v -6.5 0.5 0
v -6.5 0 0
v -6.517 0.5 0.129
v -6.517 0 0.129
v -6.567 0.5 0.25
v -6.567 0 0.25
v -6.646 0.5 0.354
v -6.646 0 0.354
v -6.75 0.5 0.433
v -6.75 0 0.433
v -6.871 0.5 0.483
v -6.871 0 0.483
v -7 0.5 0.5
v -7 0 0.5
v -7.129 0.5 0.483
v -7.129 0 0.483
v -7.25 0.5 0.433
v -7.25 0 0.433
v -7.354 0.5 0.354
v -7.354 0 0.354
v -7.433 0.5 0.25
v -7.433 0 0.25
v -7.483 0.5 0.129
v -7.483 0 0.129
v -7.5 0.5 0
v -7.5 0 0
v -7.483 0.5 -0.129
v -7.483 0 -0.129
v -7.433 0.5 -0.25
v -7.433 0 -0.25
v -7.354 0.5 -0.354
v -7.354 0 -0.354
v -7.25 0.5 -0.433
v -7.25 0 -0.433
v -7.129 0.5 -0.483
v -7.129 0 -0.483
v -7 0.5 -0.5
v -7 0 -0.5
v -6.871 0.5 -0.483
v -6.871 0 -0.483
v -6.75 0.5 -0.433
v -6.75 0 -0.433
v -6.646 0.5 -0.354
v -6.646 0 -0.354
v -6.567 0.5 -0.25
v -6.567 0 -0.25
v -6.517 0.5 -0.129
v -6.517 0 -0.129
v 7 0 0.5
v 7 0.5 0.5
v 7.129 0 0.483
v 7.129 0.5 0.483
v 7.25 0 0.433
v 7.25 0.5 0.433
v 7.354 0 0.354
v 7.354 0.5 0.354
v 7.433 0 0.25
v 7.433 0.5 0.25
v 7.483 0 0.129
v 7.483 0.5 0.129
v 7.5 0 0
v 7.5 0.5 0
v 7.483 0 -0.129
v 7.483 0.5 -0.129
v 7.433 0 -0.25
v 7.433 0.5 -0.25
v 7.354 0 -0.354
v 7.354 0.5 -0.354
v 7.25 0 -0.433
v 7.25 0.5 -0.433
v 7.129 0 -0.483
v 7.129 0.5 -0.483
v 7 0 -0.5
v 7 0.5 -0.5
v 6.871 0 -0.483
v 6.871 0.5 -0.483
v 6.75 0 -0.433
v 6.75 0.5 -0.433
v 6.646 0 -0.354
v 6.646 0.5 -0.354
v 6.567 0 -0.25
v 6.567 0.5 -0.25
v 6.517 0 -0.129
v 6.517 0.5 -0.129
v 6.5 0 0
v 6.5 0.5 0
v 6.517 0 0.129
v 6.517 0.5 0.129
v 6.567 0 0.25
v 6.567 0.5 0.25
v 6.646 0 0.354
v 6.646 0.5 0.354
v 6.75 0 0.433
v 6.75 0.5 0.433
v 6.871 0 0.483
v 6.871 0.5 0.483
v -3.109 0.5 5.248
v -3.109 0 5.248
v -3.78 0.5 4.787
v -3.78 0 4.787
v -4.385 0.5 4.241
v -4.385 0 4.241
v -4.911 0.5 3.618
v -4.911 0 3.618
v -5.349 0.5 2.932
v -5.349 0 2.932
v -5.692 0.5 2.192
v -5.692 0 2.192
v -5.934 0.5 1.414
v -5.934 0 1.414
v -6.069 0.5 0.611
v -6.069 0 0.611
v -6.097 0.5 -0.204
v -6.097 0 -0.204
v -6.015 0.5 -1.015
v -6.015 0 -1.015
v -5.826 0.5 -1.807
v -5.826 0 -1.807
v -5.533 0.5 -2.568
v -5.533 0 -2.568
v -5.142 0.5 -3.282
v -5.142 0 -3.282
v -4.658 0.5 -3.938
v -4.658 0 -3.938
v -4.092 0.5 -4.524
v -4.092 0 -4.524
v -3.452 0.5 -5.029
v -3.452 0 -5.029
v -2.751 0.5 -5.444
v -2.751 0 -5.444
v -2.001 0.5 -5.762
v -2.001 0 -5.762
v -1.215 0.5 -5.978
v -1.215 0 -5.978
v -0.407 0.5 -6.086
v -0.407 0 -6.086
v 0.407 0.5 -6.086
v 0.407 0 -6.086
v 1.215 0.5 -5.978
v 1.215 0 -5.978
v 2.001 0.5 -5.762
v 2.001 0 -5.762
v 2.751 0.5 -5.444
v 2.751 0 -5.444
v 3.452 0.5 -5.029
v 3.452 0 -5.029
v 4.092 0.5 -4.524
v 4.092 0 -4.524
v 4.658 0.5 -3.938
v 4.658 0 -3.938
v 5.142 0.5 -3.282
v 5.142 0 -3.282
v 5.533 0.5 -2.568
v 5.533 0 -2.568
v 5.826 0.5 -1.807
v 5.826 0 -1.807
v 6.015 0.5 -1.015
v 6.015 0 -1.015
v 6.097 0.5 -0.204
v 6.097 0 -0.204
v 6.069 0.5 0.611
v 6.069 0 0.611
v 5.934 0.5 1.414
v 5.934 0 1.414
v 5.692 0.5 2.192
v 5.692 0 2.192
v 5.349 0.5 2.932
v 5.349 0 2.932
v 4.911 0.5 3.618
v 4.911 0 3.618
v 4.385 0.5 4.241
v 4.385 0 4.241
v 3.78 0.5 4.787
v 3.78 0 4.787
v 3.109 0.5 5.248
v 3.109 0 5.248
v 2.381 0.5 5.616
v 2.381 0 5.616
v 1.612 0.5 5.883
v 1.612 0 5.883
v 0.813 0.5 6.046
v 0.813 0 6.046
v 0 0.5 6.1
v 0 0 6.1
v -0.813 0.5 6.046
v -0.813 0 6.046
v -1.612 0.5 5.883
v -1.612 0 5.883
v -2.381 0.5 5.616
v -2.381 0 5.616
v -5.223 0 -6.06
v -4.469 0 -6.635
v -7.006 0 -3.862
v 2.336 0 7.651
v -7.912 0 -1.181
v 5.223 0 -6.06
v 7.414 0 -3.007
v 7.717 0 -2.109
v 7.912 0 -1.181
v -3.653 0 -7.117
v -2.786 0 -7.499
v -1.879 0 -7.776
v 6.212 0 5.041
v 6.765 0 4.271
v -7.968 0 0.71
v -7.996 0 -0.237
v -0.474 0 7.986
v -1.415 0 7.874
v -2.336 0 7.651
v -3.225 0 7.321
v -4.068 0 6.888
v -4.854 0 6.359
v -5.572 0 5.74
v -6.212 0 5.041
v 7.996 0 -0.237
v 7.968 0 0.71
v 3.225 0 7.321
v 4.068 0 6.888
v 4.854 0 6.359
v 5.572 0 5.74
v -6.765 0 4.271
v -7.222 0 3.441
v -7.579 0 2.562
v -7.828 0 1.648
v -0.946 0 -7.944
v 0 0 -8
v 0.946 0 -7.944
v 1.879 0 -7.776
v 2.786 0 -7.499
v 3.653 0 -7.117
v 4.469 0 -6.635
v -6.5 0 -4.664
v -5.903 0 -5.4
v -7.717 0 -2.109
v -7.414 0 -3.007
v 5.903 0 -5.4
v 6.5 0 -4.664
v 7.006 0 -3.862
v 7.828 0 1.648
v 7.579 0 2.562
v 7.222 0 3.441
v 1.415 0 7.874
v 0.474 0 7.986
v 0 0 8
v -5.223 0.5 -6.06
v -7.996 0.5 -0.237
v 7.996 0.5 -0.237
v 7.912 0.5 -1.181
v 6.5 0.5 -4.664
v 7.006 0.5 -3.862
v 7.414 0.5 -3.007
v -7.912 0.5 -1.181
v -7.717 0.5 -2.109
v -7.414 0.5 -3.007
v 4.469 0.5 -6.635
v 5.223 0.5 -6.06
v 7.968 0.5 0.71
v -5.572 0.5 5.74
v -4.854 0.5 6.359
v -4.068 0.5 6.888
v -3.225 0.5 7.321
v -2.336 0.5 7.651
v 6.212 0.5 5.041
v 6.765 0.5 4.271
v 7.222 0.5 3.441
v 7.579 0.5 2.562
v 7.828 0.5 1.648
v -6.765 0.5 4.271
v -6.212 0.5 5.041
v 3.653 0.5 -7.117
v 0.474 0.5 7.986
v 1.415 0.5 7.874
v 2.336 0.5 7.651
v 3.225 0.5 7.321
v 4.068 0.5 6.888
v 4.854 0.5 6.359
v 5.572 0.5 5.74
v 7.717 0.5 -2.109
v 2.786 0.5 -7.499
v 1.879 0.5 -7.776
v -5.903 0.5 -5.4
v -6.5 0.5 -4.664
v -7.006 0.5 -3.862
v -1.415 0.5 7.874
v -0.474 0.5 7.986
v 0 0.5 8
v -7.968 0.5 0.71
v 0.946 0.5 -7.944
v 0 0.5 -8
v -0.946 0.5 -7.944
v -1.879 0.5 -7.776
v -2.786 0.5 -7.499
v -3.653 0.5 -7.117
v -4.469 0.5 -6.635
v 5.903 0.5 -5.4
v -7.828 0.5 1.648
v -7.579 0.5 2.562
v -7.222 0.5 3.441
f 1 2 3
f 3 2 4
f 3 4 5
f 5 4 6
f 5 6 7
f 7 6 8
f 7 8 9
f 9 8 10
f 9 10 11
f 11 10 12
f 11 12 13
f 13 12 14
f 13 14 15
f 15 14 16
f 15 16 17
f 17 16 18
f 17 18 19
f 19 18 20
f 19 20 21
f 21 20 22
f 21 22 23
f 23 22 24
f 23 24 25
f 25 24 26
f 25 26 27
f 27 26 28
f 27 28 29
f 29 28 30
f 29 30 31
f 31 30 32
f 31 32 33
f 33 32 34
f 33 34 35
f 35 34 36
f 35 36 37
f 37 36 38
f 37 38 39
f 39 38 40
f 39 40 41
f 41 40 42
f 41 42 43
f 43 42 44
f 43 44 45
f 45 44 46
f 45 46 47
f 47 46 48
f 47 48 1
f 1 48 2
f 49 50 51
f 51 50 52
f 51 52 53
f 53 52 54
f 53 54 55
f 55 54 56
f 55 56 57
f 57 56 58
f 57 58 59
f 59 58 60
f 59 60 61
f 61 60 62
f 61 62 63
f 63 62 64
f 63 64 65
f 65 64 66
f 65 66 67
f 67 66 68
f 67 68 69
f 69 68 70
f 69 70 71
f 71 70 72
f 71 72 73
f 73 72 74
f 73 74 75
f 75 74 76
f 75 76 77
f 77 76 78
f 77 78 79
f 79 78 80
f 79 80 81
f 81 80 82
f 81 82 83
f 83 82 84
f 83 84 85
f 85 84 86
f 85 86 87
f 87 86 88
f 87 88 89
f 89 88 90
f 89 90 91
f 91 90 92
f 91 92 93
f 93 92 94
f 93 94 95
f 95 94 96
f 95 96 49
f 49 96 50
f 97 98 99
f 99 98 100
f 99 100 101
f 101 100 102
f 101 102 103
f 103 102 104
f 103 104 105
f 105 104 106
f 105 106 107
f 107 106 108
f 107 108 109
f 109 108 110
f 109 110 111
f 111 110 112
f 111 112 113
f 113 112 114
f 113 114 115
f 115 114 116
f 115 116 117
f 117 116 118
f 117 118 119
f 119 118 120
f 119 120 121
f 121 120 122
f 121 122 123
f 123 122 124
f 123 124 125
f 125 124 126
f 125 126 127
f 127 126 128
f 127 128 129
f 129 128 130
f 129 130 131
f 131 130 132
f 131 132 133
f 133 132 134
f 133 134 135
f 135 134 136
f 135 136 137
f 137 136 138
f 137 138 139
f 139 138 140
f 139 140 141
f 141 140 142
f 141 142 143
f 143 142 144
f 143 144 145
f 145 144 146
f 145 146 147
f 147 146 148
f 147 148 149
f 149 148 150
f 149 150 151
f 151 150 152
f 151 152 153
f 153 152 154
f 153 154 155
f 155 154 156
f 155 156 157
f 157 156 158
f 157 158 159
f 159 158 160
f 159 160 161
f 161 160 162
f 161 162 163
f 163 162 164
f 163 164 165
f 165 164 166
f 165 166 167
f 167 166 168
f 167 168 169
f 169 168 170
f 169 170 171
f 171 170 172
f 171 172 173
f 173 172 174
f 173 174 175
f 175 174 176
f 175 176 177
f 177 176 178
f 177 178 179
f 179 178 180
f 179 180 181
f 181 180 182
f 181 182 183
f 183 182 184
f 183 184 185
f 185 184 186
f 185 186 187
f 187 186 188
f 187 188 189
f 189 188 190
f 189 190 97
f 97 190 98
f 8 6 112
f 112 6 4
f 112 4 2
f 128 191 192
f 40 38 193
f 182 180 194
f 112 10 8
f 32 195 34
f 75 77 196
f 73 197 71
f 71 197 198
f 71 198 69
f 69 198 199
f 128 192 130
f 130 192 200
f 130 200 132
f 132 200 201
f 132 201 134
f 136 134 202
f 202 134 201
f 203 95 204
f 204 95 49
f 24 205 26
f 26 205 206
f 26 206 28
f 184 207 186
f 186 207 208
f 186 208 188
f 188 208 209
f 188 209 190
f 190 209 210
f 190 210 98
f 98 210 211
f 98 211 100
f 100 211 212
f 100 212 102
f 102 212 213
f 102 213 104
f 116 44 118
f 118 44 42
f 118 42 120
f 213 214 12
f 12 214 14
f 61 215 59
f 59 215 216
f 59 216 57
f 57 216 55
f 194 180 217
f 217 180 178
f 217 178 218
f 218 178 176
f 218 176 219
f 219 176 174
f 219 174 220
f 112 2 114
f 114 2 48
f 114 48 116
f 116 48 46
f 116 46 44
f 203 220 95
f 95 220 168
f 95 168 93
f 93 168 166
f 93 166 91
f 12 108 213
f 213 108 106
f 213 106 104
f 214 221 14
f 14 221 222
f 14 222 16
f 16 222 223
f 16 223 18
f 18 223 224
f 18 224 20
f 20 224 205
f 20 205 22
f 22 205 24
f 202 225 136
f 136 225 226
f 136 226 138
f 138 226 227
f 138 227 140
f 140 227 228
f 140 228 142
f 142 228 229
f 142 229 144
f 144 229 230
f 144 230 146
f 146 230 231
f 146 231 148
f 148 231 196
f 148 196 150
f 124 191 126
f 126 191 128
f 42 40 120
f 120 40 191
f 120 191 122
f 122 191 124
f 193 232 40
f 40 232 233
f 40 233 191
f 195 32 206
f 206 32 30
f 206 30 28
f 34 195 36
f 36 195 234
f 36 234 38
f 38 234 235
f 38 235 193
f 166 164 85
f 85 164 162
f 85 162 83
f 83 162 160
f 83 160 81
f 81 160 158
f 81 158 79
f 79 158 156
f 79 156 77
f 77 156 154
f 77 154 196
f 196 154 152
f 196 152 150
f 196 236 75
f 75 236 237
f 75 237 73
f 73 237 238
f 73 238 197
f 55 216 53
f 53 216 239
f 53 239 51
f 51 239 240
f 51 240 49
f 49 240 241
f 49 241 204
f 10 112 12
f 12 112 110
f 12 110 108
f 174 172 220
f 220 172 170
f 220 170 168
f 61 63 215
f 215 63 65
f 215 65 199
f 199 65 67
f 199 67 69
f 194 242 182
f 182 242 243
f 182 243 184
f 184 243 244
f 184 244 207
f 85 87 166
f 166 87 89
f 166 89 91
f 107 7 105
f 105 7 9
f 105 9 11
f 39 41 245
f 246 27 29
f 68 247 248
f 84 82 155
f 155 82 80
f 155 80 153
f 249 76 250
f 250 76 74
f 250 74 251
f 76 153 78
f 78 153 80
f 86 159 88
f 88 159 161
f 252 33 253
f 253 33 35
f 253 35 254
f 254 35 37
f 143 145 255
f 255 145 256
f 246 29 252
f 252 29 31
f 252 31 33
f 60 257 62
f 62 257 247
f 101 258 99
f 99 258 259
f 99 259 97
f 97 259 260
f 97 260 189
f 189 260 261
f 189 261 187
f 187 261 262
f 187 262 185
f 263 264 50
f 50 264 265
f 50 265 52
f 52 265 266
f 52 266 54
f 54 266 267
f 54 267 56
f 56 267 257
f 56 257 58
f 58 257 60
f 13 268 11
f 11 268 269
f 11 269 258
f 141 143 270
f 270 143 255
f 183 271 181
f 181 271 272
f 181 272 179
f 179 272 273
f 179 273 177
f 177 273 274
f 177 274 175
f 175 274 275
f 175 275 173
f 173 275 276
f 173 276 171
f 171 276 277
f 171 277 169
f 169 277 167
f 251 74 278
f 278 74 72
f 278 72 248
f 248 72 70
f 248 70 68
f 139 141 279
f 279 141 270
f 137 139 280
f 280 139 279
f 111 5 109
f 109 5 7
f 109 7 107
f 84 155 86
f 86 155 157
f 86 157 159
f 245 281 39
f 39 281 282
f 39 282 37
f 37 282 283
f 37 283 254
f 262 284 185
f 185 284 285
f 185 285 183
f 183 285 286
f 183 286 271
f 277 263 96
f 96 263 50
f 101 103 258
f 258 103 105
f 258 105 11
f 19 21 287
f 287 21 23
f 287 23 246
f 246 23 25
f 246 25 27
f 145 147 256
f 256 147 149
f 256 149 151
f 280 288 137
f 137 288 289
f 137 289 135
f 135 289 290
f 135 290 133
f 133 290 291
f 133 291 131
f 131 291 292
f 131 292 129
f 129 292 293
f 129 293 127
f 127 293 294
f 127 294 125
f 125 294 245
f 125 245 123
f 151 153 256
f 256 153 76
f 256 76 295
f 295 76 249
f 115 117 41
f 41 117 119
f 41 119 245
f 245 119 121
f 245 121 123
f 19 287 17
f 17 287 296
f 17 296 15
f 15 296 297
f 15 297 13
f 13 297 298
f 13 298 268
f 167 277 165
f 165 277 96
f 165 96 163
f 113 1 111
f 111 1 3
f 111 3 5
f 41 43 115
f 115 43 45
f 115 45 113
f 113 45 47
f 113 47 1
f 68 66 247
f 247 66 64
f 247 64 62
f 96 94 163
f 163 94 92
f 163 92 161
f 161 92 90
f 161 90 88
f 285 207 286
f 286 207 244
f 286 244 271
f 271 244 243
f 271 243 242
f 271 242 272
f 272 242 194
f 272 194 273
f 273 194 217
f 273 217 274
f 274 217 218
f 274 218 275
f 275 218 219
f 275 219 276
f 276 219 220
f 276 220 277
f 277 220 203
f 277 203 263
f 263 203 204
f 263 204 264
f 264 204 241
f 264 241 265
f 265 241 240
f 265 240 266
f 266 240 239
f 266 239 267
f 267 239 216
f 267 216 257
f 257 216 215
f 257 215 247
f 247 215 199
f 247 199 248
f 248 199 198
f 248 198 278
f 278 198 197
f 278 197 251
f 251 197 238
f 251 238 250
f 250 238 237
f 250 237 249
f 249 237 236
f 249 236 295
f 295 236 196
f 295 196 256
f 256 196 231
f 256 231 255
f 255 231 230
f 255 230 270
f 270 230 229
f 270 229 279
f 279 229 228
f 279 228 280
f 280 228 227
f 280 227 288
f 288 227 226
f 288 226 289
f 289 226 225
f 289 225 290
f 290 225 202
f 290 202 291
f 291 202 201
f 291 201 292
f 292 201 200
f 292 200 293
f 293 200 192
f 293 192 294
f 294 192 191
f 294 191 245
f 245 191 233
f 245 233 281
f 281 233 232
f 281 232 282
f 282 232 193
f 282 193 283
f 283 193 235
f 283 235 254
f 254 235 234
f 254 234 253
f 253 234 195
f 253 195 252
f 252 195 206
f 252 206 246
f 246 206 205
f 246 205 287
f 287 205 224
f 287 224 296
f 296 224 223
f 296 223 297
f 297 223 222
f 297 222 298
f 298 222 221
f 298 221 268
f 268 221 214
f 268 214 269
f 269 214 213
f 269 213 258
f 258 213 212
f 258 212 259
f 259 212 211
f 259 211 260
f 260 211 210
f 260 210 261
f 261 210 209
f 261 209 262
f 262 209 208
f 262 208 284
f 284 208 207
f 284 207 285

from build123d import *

# Parameters (mm, degrees)
SKETCH1_R                    = 8
BOSS_EXTRUDE1_DEPTH          = 0.5
SKETCH2_R                    = 6.1
CUT_EXTRUDE1_DEPTH           = 1.5
F_1_0_1_DIAMETER_HOLE1_D     = 1
F_1_0_1_DIAMETER_HOLE1_DEPTH = 0.5


with BuildPart() as part:
    # Sketch1 → Boss-Extrude1 (new body)
    with BuildSketch(Plane(origin=(0, 0, 0), x_dir=(1, 0, 0), z_dir=(0, 1, 0))):
        Circle(SKETCH1_R)
    extrude(amount=BOSS_EXTRUDE1_DEPTH)

    # Sketch2 → Cut-Extrude1 (cut, through all)
    with BuildSketch(Plane(origin=(0, 0.5, 0), x_dir=(1, 0, 0), z_dir=(0, 1, 0))):
        Circle(SKETCH2_R)
    extrude(amount=-CUT_EXTRUDE1_DEPTH, mode=Mode.SUBTRACT)

    # Ø1.0 (1) Diameter Hole1
    with Locations(Plane(origin=(0, 0.5, 0), x_dir=(1, 0, 0), z_dir=(0, 1, 0))):
        with Locations((-7, 0), (7, 0)):
            Hole(F_1_0_1_DIAMETER_HOLE1_D / 2, depth=F_1_0_1_DIAMETER_HOLE1_DEPTH)


solid = part.part
